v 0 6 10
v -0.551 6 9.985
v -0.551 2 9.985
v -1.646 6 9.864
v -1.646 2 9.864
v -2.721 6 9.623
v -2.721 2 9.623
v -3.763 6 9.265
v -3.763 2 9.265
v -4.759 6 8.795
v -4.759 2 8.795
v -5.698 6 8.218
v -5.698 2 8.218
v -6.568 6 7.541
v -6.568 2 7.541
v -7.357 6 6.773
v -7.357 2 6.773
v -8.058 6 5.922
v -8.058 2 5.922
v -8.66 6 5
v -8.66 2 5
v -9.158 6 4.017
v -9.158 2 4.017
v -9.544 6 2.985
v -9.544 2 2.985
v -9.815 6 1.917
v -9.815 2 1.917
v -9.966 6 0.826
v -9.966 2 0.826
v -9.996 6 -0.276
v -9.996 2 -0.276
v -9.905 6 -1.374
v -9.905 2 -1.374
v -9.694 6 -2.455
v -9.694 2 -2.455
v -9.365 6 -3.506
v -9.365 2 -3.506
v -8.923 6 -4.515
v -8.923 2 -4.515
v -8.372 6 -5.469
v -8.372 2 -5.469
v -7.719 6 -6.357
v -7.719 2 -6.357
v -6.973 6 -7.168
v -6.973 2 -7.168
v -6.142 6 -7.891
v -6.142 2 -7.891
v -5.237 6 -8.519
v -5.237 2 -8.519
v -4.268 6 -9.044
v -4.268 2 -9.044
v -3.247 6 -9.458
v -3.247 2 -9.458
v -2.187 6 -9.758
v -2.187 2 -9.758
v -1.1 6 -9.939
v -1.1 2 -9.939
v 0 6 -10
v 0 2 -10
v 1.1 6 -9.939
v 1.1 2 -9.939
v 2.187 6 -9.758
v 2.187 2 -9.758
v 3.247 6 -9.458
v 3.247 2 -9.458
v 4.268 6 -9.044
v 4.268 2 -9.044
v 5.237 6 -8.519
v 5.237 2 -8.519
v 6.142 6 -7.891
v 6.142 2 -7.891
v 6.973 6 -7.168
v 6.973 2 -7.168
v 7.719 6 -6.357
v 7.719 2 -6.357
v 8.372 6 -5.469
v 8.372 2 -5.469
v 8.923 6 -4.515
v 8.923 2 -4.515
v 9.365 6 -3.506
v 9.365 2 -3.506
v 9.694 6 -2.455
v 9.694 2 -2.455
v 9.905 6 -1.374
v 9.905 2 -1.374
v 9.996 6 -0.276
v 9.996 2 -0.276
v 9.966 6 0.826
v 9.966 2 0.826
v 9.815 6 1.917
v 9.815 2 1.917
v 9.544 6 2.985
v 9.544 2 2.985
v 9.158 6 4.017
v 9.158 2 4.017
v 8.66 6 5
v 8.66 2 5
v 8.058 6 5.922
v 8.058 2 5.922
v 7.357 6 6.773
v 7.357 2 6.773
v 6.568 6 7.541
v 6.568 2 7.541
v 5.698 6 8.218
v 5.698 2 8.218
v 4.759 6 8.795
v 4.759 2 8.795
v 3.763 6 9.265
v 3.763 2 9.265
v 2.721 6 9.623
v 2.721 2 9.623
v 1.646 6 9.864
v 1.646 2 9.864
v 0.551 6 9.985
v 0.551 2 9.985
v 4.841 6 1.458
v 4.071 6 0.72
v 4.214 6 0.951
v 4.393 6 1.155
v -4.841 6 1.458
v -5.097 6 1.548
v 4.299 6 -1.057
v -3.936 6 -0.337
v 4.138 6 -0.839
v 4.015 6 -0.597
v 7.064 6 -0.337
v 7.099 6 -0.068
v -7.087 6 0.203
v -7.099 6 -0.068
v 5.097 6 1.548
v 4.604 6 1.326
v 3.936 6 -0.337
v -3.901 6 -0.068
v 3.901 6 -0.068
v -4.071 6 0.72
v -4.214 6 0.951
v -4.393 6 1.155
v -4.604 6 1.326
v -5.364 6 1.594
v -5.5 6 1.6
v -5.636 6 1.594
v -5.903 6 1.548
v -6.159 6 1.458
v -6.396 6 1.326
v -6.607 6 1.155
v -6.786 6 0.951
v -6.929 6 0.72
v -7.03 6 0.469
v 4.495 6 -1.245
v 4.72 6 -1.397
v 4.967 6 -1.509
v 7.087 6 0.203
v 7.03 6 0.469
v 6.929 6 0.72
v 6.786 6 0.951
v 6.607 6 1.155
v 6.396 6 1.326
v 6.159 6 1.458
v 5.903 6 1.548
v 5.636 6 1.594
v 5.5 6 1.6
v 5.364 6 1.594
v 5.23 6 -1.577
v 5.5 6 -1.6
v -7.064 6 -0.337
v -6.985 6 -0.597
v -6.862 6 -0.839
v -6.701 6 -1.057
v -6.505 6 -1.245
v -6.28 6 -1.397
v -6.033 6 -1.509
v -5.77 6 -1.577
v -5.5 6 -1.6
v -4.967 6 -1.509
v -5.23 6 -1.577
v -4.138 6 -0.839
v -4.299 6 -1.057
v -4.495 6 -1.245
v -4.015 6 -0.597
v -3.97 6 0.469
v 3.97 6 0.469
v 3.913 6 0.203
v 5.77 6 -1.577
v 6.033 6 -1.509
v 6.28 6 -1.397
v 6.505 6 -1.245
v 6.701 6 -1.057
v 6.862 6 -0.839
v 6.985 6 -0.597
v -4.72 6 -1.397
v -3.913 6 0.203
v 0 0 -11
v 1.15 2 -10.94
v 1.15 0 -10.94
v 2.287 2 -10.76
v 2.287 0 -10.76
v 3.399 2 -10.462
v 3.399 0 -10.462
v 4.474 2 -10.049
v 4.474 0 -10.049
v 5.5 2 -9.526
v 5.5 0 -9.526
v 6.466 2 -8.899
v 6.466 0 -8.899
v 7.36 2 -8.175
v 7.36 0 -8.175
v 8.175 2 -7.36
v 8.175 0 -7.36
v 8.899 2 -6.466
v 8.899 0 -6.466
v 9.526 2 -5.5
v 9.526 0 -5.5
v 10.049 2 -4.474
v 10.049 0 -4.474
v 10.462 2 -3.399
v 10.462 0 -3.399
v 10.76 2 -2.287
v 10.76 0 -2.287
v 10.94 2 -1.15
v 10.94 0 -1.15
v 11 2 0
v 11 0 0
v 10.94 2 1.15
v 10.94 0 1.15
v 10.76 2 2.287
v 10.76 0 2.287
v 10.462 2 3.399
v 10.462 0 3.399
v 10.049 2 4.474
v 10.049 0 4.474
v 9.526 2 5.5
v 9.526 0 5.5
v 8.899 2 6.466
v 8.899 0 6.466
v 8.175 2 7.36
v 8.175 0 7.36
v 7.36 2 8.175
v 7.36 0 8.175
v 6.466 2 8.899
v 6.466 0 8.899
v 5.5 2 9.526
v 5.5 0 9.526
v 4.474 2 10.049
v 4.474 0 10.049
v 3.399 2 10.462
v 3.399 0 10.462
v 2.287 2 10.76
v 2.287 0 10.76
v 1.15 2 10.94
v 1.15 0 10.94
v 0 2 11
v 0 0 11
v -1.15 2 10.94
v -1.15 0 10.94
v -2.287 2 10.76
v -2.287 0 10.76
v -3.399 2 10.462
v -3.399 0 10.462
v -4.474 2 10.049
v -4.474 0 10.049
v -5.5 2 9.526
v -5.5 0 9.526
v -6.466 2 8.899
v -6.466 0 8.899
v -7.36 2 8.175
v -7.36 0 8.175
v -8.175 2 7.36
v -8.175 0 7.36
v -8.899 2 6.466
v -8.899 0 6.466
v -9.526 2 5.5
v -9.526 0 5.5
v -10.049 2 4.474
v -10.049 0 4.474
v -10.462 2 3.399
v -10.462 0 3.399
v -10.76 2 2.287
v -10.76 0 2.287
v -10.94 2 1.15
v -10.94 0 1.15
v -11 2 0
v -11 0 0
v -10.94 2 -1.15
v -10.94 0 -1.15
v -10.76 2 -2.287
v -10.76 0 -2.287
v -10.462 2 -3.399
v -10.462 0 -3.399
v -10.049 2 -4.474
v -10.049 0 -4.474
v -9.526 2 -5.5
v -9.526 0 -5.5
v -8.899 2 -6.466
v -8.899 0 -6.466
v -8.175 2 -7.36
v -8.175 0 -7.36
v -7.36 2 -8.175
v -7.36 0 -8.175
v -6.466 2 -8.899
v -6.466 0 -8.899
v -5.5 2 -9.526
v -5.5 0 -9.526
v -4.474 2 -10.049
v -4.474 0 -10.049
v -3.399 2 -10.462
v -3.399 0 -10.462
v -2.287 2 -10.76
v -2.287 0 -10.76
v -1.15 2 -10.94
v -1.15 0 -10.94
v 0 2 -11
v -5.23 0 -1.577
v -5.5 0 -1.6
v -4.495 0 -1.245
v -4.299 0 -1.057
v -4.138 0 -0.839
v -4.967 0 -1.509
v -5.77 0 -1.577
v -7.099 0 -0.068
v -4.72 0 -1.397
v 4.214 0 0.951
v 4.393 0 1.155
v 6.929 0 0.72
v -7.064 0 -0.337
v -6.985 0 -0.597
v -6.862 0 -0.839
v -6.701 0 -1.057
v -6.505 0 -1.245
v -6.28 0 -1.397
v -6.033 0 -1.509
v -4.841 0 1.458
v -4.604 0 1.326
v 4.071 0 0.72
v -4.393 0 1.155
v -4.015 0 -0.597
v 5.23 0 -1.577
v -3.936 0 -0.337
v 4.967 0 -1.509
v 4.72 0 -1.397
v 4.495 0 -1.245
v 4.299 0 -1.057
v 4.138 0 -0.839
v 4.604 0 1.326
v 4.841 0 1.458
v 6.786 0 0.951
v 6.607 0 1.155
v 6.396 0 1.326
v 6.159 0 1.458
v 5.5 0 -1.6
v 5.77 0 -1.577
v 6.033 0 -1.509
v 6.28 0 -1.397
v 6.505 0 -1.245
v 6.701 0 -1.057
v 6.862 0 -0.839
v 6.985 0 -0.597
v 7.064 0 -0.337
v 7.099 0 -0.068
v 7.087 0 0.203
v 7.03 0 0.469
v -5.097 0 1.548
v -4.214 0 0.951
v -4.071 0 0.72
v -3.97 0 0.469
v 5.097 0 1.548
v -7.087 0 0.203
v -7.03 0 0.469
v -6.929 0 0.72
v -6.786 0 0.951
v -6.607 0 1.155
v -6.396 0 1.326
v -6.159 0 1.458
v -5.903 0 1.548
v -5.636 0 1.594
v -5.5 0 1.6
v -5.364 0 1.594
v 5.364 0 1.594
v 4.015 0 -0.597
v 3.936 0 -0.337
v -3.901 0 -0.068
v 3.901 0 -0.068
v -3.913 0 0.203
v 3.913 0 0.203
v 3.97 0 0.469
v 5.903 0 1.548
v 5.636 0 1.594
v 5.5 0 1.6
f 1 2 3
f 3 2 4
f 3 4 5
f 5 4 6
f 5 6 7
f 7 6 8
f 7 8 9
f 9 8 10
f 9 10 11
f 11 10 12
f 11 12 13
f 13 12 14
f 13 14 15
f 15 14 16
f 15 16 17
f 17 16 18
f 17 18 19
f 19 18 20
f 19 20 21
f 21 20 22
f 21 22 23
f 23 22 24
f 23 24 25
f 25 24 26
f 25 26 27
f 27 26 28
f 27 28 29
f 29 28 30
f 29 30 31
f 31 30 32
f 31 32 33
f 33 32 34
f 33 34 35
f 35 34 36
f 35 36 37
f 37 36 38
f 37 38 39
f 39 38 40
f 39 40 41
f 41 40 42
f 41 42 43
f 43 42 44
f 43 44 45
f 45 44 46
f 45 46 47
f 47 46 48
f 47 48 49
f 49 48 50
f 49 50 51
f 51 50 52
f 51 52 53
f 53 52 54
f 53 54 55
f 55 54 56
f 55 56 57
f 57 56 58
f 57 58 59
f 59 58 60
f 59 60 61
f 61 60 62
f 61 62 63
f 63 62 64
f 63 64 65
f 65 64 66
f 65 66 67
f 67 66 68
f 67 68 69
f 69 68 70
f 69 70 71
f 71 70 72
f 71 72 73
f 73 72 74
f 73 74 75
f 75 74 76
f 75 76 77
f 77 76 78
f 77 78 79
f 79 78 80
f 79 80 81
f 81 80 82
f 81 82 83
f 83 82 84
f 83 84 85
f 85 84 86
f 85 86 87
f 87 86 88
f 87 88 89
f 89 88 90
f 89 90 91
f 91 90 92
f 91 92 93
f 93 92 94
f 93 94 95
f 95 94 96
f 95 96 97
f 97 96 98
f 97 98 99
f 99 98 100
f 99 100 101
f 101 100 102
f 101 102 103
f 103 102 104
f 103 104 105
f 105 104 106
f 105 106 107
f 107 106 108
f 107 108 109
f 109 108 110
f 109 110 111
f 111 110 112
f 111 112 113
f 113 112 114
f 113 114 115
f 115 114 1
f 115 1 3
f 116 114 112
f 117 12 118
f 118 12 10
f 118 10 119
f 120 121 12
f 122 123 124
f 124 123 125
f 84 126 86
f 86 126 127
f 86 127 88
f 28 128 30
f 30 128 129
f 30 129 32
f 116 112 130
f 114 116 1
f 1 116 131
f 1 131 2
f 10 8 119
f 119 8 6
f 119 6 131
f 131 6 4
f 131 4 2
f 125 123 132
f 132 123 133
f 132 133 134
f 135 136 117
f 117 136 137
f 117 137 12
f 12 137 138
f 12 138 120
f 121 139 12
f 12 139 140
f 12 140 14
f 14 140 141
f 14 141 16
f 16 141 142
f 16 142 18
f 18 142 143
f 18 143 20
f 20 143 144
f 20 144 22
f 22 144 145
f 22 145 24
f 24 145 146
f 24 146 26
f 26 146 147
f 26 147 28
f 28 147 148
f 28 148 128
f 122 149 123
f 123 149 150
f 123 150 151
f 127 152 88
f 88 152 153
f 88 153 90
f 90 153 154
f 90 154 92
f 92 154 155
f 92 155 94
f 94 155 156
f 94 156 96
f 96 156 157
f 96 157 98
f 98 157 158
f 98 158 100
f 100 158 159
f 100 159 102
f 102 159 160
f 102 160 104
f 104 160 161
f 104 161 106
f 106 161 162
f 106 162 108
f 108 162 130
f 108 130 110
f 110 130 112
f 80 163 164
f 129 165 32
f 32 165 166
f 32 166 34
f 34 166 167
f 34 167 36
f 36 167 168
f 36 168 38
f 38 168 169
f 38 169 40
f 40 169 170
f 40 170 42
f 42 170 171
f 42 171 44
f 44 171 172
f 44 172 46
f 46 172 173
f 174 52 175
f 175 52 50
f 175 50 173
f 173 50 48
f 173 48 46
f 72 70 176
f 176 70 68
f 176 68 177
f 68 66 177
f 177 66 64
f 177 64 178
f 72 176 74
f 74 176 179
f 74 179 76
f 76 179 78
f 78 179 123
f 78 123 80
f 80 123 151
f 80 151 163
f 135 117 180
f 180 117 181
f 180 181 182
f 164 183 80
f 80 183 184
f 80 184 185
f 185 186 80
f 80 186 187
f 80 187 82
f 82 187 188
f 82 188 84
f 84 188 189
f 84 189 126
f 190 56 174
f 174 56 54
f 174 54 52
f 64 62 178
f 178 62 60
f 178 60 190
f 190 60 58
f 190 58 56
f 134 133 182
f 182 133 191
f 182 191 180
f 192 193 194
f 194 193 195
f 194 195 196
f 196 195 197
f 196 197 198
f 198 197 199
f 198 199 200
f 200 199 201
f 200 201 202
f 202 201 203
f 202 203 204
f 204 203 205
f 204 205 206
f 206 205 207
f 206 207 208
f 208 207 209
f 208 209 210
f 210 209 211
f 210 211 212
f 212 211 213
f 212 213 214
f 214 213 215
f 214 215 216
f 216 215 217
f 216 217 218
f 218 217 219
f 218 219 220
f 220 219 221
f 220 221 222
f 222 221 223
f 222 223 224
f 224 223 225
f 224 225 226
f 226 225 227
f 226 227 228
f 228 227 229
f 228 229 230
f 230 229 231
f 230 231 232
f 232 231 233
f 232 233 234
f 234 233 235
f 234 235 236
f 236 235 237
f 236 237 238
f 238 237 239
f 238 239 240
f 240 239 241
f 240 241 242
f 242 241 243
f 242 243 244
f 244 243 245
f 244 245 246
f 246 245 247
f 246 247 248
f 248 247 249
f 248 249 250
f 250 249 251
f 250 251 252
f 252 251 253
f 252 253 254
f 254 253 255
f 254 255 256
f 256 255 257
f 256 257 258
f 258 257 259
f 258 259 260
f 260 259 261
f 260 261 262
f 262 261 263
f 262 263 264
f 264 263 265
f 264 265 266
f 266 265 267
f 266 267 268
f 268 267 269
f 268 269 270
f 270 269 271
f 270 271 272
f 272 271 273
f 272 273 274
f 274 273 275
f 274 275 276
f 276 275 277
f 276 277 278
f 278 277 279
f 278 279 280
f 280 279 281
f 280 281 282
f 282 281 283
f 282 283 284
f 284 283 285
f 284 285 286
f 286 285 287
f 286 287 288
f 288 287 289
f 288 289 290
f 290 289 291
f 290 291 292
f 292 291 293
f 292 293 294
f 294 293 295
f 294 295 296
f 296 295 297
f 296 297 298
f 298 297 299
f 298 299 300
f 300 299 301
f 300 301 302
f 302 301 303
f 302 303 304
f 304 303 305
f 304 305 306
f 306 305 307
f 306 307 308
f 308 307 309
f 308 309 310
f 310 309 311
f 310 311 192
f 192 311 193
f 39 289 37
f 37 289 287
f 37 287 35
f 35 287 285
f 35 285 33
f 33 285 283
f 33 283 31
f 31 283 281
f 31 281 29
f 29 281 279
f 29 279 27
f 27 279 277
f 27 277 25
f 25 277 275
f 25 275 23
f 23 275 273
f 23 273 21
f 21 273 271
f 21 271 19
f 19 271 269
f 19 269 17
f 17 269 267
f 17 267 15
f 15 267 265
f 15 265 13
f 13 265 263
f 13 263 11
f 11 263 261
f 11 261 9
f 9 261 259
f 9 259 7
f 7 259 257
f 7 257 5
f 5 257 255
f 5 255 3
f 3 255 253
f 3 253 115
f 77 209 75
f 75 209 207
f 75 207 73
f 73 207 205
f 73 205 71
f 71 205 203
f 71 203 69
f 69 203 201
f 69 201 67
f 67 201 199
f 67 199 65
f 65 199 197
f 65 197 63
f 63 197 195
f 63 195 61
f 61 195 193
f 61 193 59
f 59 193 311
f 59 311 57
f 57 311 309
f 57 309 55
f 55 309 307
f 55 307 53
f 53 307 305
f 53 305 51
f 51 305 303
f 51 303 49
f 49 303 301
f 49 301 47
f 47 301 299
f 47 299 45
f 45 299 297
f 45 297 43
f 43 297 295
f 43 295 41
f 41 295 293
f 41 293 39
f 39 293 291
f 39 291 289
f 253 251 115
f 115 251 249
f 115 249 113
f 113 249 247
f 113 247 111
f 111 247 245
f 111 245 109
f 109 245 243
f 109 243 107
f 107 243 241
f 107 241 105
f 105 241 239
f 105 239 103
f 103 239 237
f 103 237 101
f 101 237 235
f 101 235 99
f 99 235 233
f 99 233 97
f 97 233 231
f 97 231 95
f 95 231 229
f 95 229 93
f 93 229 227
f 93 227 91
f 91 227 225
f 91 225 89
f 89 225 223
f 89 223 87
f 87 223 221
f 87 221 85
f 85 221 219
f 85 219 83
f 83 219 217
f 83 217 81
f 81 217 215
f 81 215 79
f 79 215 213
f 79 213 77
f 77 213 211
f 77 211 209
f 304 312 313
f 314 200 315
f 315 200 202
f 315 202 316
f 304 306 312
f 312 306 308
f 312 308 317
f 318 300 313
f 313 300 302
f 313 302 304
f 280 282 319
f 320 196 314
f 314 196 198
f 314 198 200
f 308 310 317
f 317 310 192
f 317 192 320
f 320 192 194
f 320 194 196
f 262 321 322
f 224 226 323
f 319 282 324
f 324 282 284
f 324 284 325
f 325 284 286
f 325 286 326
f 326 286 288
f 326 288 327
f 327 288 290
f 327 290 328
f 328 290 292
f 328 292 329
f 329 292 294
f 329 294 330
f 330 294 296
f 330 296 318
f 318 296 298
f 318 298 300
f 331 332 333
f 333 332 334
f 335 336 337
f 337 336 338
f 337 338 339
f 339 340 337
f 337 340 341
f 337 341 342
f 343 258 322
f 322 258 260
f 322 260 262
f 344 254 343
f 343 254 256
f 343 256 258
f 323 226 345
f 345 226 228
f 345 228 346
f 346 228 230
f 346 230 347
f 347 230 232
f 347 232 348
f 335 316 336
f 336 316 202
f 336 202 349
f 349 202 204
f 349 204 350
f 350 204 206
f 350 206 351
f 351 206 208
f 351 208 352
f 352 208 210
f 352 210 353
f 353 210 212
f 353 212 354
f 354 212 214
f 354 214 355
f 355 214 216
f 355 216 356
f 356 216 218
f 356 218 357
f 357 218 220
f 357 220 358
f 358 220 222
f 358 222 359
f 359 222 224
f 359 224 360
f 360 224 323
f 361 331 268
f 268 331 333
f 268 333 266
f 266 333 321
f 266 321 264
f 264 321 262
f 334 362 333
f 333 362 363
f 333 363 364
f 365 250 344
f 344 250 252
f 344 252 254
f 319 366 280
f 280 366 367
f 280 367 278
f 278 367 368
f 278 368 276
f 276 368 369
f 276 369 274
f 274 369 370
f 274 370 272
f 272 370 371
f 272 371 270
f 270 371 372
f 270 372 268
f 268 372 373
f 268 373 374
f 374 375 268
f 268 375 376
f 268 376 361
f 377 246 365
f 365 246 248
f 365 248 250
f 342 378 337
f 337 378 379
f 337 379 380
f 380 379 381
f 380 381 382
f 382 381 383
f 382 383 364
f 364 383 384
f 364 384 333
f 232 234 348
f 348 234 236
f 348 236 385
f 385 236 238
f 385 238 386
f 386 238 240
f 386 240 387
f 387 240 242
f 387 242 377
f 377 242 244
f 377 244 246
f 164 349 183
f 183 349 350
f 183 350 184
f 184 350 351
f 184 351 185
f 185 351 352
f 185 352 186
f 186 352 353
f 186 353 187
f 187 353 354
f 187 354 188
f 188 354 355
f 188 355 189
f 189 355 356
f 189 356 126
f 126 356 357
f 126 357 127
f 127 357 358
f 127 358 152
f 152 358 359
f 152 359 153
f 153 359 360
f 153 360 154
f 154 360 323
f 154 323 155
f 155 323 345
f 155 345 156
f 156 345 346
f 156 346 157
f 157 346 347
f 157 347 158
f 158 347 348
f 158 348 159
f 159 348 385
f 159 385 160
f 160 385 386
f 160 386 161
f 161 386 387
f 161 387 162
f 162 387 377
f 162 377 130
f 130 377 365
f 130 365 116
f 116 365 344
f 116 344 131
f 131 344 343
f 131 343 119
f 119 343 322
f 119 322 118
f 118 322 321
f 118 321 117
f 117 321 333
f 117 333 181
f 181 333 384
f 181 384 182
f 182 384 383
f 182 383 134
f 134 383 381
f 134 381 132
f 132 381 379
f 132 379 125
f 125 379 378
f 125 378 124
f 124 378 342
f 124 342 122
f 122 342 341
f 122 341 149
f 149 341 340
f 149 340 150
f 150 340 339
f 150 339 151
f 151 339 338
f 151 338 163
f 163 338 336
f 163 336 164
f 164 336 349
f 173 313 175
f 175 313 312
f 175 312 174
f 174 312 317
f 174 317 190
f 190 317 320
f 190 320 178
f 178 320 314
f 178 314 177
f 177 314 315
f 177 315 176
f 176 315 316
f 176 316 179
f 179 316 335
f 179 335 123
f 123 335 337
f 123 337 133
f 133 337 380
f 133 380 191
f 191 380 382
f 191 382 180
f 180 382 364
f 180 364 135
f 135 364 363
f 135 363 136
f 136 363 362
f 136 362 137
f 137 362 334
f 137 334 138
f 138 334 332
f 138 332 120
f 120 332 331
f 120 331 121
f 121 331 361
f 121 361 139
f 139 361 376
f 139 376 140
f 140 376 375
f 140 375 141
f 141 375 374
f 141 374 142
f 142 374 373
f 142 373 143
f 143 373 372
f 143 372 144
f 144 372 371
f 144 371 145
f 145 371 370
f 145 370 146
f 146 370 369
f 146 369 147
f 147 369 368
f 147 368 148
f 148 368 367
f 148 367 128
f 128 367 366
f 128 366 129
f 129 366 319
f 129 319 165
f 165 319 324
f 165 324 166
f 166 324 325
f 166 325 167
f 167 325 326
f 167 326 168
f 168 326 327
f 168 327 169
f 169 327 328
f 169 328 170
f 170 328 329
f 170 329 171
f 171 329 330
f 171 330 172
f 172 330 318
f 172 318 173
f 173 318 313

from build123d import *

# Parameters (mm, degrees)
SKETCH1_R           = 10
BOSS_EXTRUDE1_DEPTH = 6
SKETCH4_R           = 11
BOSS_EXTRUDE2_DEPTH = 2
SKETCH3_R           = 1.6
CUT_EXTRUDE2_DEPTH  = 15


with BuildPart() as part:
    # Sketch1 → Boss-Extrude1 (new body)
    with BuildSketch(Plane(origin=(0, 0, 0), x_dir=(1, 0, 0), z_dir=(0, 1, 0))):
        with Locations(Location((0, 0, 0), (0, 0, 270))):
            Circle(SKETCH1_R)
    extrude(amount=BOSS_EXTRUDE1_DEPTH)

    # Sketch4 → Boss-Extrude2 (add)
    with BuildSketch(Plane.XZ):
        with Locations(Location((0, 0, 0), (0, 0, 270))):
            Circle(SKETCH4_R)
    extrude(amount=-BOSS_EXTRUDE2_DEPTH)

    # Sketch3 → Cut-Extrude2 (cut)
    with BuildSketch(Plane(origin=(0, 0, 0), x_dir=(1, 0, 0), z_dir=(0, 1, 0))):
        with Locations(Location((-5.5, 0, 0), (0, 0, 270))):
            Circle(SKETCH3_R)
        with Locations(Location((5.5, 0, 0), (0, 0, 270))):
            Circle(SKETCH3_R)
    extrude(amount=CUT_EXTRUDE2_DEPTH, mode=Mode.SUBTRACT)


solid = part.part
